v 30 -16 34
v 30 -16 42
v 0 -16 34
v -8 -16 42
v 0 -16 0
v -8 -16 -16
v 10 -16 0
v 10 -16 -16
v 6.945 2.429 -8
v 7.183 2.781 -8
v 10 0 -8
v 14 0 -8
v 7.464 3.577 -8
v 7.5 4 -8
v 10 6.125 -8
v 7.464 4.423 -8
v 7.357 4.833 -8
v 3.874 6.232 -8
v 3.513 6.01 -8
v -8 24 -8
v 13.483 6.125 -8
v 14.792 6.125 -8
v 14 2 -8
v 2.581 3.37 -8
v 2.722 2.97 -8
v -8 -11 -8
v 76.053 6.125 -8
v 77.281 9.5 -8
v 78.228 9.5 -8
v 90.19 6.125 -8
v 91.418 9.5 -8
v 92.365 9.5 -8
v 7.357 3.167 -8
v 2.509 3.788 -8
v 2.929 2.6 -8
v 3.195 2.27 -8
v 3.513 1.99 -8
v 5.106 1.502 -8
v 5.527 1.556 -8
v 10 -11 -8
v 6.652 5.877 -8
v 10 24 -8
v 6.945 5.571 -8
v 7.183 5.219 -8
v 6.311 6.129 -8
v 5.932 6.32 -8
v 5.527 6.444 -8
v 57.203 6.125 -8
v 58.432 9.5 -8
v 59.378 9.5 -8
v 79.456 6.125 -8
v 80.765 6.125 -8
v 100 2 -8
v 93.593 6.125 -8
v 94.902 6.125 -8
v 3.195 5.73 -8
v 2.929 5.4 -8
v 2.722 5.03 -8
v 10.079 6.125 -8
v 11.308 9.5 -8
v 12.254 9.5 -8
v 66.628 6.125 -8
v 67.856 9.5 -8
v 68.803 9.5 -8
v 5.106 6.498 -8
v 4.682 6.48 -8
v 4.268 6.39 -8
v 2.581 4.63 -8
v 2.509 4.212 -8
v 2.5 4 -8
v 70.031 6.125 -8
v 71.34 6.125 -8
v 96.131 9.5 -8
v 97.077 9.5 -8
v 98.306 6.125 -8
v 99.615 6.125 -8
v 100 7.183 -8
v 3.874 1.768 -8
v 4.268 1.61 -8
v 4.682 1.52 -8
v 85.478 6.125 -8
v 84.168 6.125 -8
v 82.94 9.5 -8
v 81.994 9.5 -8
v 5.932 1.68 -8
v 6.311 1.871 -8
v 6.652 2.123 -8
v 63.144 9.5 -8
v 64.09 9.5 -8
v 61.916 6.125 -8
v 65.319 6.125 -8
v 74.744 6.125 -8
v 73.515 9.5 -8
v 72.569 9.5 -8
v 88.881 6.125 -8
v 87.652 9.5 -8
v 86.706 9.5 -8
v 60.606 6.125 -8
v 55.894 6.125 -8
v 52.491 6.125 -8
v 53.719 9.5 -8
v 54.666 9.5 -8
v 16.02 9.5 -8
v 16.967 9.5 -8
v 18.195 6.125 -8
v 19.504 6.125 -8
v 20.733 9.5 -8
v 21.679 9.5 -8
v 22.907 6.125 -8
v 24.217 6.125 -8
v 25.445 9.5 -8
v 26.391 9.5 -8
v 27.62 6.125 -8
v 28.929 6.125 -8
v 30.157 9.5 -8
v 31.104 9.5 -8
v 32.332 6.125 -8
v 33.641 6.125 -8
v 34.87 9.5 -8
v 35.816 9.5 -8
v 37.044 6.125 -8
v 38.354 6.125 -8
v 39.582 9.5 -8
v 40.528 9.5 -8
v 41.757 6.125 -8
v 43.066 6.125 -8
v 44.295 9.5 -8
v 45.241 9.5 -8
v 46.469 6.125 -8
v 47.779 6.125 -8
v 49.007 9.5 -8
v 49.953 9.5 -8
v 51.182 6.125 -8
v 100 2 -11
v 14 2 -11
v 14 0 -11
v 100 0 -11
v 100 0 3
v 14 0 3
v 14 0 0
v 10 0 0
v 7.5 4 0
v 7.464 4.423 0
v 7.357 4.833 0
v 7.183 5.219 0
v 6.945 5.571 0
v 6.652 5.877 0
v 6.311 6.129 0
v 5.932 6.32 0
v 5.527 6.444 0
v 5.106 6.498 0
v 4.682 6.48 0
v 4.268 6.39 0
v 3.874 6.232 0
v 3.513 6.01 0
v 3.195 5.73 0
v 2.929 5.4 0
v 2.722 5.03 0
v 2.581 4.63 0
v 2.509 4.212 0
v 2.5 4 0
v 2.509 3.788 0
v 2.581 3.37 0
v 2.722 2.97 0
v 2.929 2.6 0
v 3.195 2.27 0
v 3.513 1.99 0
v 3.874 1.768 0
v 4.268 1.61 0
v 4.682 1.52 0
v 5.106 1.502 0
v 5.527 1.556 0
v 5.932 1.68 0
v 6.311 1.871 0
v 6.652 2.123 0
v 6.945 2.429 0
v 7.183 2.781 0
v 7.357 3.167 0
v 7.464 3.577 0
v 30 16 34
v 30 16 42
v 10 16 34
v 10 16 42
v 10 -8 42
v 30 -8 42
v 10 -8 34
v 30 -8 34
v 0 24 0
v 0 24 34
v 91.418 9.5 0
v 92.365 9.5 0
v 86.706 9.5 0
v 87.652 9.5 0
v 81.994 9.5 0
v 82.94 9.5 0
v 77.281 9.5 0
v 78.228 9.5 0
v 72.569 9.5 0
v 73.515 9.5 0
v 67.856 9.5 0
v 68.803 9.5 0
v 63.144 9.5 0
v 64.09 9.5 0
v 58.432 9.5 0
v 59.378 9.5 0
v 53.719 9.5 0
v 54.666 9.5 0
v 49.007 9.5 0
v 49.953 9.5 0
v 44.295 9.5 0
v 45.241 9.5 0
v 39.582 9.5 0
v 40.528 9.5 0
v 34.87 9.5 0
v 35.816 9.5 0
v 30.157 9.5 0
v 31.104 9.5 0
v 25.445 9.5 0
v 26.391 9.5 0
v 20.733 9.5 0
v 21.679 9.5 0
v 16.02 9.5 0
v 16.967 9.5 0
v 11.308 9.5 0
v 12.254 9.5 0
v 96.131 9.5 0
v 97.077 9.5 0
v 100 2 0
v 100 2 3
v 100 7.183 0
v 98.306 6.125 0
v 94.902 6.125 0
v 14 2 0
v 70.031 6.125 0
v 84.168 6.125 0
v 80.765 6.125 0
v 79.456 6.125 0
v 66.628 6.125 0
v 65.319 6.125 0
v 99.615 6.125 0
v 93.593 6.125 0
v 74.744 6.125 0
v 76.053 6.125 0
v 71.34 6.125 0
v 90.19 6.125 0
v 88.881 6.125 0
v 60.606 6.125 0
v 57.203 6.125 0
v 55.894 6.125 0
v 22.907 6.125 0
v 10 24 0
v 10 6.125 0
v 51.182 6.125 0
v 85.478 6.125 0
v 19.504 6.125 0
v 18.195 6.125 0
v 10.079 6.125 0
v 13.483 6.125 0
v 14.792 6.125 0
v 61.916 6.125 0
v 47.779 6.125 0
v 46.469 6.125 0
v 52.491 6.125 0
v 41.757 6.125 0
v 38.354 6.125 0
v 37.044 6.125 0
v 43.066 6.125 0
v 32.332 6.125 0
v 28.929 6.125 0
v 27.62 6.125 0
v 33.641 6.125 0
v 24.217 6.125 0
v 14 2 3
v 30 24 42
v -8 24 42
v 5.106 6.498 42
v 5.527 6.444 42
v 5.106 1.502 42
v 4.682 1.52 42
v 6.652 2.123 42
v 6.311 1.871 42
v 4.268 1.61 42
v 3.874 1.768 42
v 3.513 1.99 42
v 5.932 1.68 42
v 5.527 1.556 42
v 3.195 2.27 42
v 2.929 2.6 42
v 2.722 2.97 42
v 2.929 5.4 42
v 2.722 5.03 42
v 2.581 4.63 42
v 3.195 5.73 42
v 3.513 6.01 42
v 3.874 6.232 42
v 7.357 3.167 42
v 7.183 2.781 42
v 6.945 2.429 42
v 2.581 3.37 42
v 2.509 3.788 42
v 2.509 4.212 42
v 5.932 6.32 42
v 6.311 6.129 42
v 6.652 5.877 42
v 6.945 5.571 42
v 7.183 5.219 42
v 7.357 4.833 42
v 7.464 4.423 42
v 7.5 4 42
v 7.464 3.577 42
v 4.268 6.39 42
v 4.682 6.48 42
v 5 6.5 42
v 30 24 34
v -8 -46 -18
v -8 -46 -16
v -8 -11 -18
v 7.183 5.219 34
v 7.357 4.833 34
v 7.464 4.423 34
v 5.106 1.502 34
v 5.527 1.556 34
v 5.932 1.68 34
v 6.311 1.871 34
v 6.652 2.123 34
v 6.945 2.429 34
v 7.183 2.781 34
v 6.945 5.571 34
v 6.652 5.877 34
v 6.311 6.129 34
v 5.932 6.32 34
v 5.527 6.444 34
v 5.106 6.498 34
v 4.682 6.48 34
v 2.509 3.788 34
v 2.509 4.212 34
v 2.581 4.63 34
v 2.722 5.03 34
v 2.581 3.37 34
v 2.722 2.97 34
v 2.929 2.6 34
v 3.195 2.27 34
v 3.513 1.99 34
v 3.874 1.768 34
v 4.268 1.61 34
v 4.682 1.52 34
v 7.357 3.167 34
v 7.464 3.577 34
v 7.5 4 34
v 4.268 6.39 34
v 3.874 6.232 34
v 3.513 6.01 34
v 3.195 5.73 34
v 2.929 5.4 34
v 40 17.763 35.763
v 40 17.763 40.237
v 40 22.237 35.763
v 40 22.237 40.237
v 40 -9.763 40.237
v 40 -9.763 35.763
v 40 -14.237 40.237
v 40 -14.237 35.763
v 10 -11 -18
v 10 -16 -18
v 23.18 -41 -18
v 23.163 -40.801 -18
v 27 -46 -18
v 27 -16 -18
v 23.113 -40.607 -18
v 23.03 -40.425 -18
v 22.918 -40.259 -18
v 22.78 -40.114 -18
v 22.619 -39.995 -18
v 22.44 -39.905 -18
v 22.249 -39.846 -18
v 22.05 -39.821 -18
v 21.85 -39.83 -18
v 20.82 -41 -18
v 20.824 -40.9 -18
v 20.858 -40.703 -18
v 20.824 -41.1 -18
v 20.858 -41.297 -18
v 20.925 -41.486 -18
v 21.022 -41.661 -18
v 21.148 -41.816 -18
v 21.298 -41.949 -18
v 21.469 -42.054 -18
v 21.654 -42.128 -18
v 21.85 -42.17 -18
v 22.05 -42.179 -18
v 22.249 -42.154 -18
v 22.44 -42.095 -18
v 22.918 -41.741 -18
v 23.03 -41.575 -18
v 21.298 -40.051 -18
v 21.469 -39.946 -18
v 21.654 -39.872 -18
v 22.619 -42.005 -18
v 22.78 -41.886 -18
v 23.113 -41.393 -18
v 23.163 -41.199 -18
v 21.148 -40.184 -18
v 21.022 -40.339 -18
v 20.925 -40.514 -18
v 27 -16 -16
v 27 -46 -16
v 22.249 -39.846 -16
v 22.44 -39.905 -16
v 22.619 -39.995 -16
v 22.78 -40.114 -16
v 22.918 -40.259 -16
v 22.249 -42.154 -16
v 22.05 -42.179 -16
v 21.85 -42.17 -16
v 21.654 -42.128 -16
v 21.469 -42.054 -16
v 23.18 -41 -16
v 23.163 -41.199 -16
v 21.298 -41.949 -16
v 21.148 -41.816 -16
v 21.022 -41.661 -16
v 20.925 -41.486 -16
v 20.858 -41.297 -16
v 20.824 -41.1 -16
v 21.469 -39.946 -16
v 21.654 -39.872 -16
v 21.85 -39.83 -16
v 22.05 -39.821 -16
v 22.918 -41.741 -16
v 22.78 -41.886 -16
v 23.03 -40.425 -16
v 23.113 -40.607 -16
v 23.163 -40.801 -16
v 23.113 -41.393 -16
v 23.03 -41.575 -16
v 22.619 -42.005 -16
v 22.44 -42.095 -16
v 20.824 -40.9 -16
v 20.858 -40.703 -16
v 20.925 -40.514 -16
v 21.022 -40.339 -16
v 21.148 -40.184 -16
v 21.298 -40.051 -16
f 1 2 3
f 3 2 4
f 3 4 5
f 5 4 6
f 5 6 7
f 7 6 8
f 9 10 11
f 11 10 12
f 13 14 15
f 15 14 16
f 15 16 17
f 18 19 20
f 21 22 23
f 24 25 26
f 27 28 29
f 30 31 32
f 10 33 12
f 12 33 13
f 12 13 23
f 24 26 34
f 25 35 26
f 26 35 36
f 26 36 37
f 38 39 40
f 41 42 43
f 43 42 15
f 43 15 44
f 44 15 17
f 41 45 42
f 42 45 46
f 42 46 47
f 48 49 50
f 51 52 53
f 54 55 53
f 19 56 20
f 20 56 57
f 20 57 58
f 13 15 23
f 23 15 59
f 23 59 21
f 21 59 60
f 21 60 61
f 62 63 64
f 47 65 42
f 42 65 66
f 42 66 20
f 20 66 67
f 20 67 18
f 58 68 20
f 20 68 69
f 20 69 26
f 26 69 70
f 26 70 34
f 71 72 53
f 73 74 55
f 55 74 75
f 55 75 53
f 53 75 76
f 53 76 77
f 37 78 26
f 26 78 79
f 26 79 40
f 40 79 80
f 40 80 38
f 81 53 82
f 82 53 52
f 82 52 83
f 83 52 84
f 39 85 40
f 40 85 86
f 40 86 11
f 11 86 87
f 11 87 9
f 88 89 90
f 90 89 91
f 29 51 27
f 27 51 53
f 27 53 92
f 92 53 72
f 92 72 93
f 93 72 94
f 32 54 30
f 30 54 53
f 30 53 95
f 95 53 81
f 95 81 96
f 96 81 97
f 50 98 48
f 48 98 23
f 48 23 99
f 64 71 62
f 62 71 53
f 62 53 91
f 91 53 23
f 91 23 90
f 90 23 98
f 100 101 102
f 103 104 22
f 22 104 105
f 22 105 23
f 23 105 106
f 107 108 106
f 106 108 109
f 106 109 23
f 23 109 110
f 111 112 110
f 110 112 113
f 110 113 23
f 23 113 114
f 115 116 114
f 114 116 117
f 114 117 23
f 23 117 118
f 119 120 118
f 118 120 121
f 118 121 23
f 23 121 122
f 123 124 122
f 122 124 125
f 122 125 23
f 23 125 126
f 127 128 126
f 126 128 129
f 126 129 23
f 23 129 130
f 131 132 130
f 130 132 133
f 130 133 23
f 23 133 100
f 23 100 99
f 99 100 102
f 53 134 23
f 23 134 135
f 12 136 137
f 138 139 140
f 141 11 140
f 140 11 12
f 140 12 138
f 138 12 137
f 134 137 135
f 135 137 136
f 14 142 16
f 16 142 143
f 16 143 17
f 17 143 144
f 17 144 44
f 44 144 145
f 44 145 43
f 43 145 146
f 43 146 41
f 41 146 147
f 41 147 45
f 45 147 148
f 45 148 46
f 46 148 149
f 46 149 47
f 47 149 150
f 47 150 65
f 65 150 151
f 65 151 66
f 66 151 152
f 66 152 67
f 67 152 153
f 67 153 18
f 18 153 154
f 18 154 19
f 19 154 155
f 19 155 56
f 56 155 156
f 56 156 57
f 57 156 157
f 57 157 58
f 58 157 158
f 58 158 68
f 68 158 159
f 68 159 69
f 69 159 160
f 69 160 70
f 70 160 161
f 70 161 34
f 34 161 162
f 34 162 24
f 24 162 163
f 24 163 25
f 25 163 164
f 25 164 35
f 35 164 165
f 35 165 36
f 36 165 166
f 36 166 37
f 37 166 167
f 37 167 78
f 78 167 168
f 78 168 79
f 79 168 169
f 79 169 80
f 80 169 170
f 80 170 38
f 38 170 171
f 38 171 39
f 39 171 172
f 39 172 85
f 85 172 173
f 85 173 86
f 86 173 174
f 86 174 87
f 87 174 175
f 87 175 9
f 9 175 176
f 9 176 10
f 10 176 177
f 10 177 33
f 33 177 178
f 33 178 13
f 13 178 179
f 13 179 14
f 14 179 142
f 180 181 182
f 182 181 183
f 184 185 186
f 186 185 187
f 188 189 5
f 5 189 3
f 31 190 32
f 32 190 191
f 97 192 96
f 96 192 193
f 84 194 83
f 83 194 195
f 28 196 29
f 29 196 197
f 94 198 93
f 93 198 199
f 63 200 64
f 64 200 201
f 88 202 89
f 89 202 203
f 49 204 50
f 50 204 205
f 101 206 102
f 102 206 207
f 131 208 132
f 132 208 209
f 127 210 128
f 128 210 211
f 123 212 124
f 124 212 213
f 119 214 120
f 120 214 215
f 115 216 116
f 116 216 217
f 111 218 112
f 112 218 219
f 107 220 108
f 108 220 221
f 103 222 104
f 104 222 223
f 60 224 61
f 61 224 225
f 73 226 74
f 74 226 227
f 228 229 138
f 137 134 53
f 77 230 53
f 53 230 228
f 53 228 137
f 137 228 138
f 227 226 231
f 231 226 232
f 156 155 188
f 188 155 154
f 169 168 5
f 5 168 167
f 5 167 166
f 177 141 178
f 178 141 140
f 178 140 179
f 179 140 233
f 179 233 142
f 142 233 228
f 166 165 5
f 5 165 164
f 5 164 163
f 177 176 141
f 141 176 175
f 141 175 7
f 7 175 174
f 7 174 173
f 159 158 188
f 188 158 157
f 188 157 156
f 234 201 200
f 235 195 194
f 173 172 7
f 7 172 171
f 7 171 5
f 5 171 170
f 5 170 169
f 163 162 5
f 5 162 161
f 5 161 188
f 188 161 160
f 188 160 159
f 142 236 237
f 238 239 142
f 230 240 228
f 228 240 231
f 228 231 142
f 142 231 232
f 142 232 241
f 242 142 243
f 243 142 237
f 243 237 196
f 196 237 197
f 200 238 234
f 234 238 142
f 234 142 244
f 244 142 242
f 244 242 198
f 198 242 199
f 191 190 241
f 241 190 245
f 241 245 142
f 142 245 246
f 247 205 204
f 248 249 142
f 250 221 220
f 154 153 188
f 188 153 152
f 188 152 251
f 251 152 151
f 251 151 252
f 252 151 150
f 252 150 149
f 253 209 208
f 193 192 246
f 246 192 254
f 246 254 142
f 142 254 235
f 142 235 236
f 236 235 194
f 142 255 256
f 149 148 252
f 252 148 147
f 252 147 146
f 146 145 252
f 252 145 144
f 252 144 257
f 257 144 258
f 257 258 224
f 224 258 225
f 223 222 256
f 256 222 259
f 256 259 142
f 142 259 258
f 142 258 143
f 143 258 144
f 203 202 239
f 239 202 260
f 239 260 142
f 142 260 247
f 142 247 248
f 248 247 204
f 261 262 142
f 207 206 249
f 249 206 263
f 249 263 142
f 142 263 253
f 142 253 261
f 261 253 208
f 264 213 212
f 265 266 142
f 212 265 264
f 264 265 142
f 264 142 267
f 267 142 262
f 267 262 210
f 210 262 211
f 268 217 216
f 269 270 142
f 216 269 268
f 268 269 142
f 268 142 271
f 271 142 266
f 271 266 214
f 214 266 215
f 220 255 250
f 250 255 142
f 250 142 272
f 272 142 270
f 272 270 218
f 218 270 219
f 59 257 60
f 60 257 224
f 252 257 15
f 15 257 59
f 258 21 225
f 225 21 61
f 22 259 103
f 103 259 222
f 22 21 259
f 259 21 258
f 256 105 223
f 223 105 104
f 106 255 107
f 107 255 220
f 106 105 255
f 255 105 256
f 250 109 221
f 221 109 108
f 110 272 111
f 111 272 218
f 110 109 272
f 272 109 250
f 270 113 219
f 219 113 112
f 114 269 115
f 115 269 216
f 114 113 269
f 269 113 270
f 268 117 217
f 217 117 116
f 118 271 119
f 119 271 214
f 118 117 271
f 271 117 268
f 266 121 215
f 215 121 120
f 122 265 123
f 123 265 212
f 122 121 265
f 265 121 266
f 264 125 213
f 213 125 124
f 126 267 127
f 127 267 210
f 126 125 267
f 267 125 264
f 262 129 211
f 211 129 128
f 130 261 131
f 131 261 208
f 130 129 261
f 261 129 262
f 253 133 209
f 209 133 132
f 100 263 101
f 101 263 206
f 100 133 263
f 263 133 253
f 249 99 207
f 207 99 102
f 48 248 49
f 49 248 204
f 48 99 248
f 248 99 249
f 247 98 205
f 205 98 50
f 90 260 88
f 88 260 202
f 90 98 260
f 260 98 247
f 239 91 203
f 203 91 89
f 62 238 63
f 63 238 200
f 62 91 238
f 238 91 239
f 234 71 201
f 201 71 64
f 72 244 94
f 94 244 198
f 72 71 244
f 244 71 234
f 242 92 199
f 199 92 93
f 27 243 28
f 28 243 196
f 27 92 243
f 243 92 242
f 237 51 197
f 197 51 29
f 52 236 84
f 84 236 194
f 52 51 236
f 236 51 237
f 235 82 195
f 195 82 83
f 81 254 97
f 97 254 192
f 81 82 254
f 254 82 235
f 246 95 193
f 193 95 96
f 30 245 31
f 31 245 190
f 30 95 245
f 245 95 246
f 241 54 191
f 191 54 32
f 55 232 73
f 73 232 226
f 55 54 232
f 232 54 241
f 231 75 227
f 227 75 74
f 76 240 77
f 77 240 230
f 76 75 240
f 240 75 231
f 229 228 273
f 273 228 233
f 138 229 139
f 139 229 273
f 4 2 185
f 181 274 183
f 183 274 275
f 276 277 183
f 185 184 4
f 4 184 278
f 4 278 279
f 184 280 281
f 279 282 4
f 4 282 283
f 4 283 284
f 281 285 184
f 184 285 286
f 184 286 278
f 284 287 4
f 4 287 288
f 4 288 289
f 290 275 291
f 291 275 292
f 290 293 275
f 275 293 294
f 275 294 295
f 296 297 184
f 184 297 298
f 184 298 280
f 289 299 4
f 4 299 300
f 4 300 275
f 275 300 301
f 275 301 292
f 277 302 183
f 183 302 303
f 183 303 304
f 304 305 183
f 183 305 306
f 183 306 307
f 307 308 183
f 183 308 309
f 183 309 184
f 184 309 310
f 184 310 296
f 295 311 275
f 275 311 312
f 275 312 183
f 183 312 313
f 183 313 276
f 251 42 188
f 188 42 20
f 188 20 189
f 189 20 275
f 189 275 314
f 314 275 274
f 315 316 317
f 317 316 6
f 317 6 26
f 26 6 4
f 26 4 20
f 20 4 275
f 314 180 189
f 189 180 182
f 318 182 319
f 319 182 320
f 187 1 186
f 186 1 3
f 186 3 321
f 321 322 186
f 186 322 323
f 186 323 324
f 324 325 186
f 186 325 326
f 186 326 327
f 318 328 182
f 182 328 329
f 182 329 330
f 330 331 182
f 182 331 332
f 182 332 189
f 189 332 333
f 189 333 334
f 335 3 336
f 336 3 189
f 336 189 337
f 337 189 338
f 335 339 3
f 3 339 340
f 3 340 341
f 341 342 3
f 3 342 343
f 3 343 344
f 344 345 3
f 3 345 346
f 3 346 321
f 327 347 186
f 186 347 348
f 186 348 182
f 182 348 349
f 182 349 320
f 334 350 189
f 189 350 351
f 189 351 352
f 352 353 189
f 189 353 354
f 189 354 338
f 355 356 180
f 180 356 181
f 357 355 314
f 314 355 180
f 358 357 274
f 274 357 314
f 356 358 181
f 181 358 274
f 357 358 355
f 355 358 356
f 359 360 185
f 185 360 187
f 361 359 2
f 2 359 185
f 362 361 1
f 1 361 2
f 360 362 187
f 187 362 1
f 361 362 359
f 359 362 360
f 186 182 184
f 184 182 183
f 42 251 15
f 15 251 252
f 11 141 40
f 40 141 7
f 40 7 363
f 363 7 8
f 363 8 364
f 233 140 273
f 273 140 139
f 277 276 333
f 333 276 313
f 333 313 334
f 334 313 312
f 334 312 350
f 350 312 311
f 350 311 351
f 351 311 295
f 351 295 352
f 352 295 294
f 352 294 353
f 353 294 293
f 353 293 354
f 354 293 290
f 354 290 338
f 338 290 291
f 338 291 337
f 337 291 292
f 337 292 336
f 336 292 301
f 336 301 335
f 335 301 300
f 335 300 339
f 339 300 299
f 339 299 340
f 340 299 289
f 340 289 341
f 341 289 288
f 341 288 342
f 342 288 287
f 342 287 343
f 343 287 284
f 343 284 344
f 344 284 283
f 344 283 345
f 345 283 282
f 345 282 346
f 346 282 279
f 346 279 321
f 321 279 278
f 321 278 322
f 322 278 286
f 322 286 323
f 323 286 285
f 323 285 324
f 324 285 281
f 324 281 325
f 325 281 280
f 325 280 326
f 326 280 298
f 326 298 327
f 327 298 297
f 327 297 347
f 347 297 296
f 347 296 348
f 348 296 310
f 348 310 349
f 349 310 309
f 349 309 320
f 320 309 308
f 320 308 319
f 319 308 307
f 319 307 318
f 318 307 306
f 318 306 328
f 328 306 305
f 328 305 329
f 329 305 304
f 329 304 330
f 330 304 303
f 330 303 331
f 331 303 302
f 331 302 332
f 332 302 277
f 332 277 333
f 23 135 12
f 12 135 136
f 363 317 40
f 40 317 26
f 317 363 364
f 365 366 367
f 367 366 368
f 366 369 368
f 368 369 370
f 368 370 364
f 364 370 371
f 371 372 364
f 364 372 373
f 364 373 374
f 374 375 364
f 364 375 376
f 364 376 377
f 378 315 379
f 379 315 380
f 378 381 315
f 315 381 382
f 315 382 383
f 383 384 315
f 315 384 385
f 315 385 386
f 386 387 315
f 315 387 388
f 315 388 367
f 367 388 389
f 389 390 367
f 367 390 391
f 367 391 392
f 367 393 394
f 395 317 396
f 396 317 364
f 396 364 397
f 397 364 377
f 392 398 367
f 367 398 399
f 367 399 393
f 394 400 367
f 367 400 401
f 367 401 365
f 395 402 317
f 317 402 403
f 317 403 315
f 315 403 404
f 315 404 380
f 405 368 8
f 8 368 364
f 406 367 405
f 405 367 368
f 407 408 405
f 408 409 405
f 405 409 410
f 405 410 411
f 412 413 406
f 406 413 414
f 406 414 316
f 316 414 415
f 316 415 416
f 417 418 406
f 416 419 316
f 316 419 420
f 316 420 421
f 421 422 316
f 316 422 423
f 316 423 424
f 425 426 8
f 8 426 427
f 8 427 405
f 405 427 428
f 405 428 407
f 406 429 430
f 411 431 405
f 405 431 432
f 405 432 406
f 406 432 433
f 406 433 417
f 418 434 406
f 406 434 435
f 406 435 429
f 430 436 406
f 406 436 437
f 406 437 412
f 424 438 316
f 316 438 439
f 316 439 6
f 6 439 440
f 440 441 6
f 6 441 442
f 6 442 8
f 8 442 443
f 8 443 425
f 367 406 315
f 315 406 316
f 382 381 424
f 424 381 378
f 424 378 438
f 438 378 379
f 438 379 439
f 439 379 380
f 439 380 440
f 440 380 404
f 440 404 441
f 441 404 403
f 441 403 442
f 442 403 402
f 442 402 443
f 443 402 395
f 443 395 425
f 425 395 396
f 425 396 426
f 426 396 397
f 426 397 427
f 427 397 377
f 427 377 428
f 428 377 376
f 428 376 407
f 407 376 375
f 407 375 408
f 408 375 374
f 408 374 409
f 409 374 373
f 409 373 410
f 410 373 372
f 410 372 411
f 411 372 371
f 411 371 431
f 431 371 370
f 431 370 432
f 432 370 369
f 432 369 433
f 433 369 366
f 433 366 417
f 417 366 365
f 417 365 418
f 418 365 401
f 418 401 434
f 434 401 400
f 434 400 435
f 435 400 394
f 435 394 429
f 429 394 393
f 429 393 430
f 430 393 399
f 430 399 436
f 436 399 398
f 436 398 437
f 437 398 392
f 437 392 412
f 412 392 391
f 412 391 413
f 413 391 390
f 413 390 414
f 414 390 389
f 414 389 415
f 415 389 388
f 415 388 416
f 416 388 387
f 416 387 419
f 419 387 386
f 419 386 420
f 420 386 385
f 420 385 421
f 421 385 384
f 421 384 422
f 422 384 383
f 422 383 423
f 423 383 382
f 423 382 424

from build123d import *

# Parameters (mm, degrees)
BLANKSKE_W              = 100
BLANKSKE_H              = 9.5
BLANK_DEPTH             = 8
TOOTHCUTSIM_DEPTH       = 101.768298586
TEETHCUTS_COUNT         = 22
TEETHCUTS_PITCH         = 4.712388975
SKETCH1_W               = 3
SKETCH1_H               = 2
BOSS_EXTRUDE1_DEPTH     = 100
SKETCH4_W               = 50
SKETCH4_H               = 40
BOSS_EXTRUDE2_DEPTH     = 8
SKETCH5_W               = 8
SKETCH5_H               = 8
BOSS_EXTRUDE3_DEPTH     = 30
SKETCH6_W               = 8
SKETCH6_H               = 8
BOSS_EXTRUDE4_DEPTH     = 10
BOSS_EXTRUDE4_TAPER     = 10
SKETCH7_W               = 10
SKETCH7_H               = 24
EXTRUDE_THIN1_DEPTH     = 8
SKETCH8_W               = 10
SKETCH8_H               = 40
BOSS_EXTRUDE5_DEPTH     = 8
CUT_EXTRUDE1_REACH      = 112.671
SKETCH9_W               = 14
SKETCH9_H               = 3
CUT_EXTRUDE2_DEPTH      = 116.693560775
CUT_EXTRUDE2_DEPTH_BACK = 116.693560775
SKETCH10_R              = 2.5
SKETCH11_W              = 18
SKETCH11_H              = 5
BOSS_EXTRUDE6_DEPTH     = 10
SKETCH12_W              = 35
SKETCH12_H              = 2
BOSS_EXTRUDE7_DEPTH     = 30
CUT_EXTRUDE3_REACH      = 126.419
SKETCH13_R              = 1.18


with BuildPart() as part:
    # BlankSke → Blank (new body)
    with BuildSketch(Plane.XY):
        with Locations((50, 4.75)):
            Rectangle(BLANKSKE_W, BLANKSKE_H)
    extrude(amount=-BLANK_DEPTH)

    # TooCutSkeSim → ToothCutSim (cut, through all)
    with BuildSketch(Plane.XY):
        Polygon((0.654653055, 6.125), (-0.654653055, 6.125), (-1.892297439, 9.5254), (1.892297439, 9.5254), align=None)
    toothcutsim = extrude(amount=-TOOTHCUTSIM_DEPTH, mode=Mode.SUBTRACT)

    # TeethCuts: ToothCutSim ×22
    with Locations(*[(i * TEETHCUTS_PITCH, 0, 0) for i in range(1, TEETHCUTS_COUNT)]):
        add(toothcutsim, mode=Mode.SUBTRACT)

    # Sketch1 → Boss-Extrude1 (add)
    with BuildSketch(Plane.ZY):
        with Locations((1.5, 1)):
            Rectangle(SKETCH1_W, SKETCH1_H)
    boss_extrude1 = extrude(amount=-BOSS_EXTRUDE1_DEPTH)

    # Mirror1: Boss-Extrude1 across plane
    add(boss_extrude1.mirror(Plane(origin=(0, 0, -4), x_dir=(1, 0, 0), z_dir=(0, 0, -1))))

    # Sketch4 → Boss-Extrude2 (add)
    with BuildSketch(Plane.ZY):
        with Locations((17, 4)):
            Rectangle(SKETCH4_W, SKETCH4_H)
    extrude(amount=BOSS_EXTRUDE2_DEPTH)

    # Sketch5 → Boss-Extrude3 (add)
    with BuildSketch(Plane(origin=(0, 0, 0), x_dir=(0, 0, -1), z_dir=(1, 0, 0))):
        with Locations((-38, 20)):
            Rectangle(SKETCH5_W, SKETCH5_H)
    boss_extrude3 = extrude(amount=BOSS_EXTRUDE3_DEPTH)

    # Mirror2: Boss-Extrude3 across plane
    add(boss_extrude3.mirror(Plane.ZX.offset(4)))

    # Sketch6 → Boss-Extrude4 (add)
    with BuildSketch(Plane(origin=(30, 0, 0), x_dir=(0, 0, -1), z_dir=(1, 0, 0))):
        with Locations((-38, 20)):
            Rectangle(SKETCH6_W, SKETCH6_H)
    boss_extrude4 = extrude(amount=BOSS_EXTRUDE4_DEPTH, taper=BOSS_EXTRUDE4_TAPER)

    # Mirror3: Boss-Extrude4 across plane
    add(boss_extrude4.mirror(Plane.ZX.offset(4)))

    # Sketch7 → Extrude-Thin1 (add)
    with BuildSketch(Plane.XY.offset(42)):
        with Locations((5, 4)):
            Rectangle(SKETCH7_W, SKETCH7_H)
    extrude(amount=-EXTRUDE_THIN1_DEPTH)

    # Sketch8 → Boss-Extrude5 (add)
    with BuildSketch(Plane(origin=(0, 0, -8), x_dir=(-1, 0, 0), z_dir=(0, 0, -1))):
        with Locations((-5, 4)):
            Rectangle(SKETCH8_W, SKETCH8_H)
    extrude(amount=-BOSS_EXTRUDE5_DEPTH)

    # Sketch9 → Cut-Extrude1 (cut, up to next)
    with BuildSketch(Plane(origin=(0, 2, 0), x_dir=(1, 0, 0), z_dir=(0, 1, 0)), mode=Mode.PRIVATE) as cut_extrude1_sk1:
        with Locations((7, -1.5)):
            Rectangle(SKETCH9_W, SKETCH9_H)
    cut_extrude1_tool1 = extrude(cut_extrude1_sk1.sketch, amount=-CUT_EXTRUDE1_REACH, mode=Mode.PRIVATE) & part.part
    cut_extrude1 = cut_extrude1_tool1.solids().sort_by_distance((7, 2, 1.5))[0]
    add(cut_extrude1, mode=Mode.SUBTRACT)

    # Sketch10 → Cut-Extrude2 (cut, two sides: drawn at the far end of the back side and taken through both)
    with BuildSketch(Plane.XY.offset(42).offset(-CUT_EXTRUDE2_DEPTH_BACK)):
        with Locations((5, 4)):
            Circle(SKETCH10_R)
    extrude(amount=CUT_EXTRUDE2_DEPTH + CUT_EXTRUDE2_DEPTH_BACK, mode=Mode.SUBTRACT)

    # Mirror4: Cut-Extrude1 across plane
    add(cut_extrude1.mirror(Plane(origin=(0, 0, -4), x_dir=(1, 0, 0), z_dir=(0, 0, -1))), mode=Mode.SUBTRACT)

    # Sketch11 → Boss-Extrude6 (add)
    with BuildSketch(Plane(origin=(0, 0, -8), x_dir=(-1, 0, 0), z_dir=(0, 0, -1))):
        with Locations((-1, -13.5)):
            Rectangle(SKETCH11_W, SKETCH11_H)
    extrude(amount=BOSS_EXTRUDE6_DEPTH)

    # Sketch12 → Boss-Extrude7 (add)
    with BuildSketch(Plane(origin=(0, -16, 0), x_dir=(-1, 0, 0), z_dir=(0, -1, 0))):
        with Locations((-9.5, 17)):
            Rectangle(SKETCH12_W, SKETCH12_H)
    extrude(amount=BOSS_EXTRUDE7_DEPTH)

    # Sketch13 → Cut-Extrude3 (cut, up to next)
    with BuildSketch(Plane.XY.offset(-16), mode=Mode.PRIVATE) as cut_extrude3_sk1:
        with Locations((22, -41)):
            Circle(SKETCH13_R)
    cut_extrude3_tool1 = extrude(cut_extrude3_sk1.sketch, amount=-CUT_EXTRUDE3_REACH, mode=Mode.PRIVATE) & part.part
    add(cut_extrude3_tool1.solids().sort_by_distance((22, -41, -16))[0], mode=Mode.SUBTRACT)


solid = part.part
